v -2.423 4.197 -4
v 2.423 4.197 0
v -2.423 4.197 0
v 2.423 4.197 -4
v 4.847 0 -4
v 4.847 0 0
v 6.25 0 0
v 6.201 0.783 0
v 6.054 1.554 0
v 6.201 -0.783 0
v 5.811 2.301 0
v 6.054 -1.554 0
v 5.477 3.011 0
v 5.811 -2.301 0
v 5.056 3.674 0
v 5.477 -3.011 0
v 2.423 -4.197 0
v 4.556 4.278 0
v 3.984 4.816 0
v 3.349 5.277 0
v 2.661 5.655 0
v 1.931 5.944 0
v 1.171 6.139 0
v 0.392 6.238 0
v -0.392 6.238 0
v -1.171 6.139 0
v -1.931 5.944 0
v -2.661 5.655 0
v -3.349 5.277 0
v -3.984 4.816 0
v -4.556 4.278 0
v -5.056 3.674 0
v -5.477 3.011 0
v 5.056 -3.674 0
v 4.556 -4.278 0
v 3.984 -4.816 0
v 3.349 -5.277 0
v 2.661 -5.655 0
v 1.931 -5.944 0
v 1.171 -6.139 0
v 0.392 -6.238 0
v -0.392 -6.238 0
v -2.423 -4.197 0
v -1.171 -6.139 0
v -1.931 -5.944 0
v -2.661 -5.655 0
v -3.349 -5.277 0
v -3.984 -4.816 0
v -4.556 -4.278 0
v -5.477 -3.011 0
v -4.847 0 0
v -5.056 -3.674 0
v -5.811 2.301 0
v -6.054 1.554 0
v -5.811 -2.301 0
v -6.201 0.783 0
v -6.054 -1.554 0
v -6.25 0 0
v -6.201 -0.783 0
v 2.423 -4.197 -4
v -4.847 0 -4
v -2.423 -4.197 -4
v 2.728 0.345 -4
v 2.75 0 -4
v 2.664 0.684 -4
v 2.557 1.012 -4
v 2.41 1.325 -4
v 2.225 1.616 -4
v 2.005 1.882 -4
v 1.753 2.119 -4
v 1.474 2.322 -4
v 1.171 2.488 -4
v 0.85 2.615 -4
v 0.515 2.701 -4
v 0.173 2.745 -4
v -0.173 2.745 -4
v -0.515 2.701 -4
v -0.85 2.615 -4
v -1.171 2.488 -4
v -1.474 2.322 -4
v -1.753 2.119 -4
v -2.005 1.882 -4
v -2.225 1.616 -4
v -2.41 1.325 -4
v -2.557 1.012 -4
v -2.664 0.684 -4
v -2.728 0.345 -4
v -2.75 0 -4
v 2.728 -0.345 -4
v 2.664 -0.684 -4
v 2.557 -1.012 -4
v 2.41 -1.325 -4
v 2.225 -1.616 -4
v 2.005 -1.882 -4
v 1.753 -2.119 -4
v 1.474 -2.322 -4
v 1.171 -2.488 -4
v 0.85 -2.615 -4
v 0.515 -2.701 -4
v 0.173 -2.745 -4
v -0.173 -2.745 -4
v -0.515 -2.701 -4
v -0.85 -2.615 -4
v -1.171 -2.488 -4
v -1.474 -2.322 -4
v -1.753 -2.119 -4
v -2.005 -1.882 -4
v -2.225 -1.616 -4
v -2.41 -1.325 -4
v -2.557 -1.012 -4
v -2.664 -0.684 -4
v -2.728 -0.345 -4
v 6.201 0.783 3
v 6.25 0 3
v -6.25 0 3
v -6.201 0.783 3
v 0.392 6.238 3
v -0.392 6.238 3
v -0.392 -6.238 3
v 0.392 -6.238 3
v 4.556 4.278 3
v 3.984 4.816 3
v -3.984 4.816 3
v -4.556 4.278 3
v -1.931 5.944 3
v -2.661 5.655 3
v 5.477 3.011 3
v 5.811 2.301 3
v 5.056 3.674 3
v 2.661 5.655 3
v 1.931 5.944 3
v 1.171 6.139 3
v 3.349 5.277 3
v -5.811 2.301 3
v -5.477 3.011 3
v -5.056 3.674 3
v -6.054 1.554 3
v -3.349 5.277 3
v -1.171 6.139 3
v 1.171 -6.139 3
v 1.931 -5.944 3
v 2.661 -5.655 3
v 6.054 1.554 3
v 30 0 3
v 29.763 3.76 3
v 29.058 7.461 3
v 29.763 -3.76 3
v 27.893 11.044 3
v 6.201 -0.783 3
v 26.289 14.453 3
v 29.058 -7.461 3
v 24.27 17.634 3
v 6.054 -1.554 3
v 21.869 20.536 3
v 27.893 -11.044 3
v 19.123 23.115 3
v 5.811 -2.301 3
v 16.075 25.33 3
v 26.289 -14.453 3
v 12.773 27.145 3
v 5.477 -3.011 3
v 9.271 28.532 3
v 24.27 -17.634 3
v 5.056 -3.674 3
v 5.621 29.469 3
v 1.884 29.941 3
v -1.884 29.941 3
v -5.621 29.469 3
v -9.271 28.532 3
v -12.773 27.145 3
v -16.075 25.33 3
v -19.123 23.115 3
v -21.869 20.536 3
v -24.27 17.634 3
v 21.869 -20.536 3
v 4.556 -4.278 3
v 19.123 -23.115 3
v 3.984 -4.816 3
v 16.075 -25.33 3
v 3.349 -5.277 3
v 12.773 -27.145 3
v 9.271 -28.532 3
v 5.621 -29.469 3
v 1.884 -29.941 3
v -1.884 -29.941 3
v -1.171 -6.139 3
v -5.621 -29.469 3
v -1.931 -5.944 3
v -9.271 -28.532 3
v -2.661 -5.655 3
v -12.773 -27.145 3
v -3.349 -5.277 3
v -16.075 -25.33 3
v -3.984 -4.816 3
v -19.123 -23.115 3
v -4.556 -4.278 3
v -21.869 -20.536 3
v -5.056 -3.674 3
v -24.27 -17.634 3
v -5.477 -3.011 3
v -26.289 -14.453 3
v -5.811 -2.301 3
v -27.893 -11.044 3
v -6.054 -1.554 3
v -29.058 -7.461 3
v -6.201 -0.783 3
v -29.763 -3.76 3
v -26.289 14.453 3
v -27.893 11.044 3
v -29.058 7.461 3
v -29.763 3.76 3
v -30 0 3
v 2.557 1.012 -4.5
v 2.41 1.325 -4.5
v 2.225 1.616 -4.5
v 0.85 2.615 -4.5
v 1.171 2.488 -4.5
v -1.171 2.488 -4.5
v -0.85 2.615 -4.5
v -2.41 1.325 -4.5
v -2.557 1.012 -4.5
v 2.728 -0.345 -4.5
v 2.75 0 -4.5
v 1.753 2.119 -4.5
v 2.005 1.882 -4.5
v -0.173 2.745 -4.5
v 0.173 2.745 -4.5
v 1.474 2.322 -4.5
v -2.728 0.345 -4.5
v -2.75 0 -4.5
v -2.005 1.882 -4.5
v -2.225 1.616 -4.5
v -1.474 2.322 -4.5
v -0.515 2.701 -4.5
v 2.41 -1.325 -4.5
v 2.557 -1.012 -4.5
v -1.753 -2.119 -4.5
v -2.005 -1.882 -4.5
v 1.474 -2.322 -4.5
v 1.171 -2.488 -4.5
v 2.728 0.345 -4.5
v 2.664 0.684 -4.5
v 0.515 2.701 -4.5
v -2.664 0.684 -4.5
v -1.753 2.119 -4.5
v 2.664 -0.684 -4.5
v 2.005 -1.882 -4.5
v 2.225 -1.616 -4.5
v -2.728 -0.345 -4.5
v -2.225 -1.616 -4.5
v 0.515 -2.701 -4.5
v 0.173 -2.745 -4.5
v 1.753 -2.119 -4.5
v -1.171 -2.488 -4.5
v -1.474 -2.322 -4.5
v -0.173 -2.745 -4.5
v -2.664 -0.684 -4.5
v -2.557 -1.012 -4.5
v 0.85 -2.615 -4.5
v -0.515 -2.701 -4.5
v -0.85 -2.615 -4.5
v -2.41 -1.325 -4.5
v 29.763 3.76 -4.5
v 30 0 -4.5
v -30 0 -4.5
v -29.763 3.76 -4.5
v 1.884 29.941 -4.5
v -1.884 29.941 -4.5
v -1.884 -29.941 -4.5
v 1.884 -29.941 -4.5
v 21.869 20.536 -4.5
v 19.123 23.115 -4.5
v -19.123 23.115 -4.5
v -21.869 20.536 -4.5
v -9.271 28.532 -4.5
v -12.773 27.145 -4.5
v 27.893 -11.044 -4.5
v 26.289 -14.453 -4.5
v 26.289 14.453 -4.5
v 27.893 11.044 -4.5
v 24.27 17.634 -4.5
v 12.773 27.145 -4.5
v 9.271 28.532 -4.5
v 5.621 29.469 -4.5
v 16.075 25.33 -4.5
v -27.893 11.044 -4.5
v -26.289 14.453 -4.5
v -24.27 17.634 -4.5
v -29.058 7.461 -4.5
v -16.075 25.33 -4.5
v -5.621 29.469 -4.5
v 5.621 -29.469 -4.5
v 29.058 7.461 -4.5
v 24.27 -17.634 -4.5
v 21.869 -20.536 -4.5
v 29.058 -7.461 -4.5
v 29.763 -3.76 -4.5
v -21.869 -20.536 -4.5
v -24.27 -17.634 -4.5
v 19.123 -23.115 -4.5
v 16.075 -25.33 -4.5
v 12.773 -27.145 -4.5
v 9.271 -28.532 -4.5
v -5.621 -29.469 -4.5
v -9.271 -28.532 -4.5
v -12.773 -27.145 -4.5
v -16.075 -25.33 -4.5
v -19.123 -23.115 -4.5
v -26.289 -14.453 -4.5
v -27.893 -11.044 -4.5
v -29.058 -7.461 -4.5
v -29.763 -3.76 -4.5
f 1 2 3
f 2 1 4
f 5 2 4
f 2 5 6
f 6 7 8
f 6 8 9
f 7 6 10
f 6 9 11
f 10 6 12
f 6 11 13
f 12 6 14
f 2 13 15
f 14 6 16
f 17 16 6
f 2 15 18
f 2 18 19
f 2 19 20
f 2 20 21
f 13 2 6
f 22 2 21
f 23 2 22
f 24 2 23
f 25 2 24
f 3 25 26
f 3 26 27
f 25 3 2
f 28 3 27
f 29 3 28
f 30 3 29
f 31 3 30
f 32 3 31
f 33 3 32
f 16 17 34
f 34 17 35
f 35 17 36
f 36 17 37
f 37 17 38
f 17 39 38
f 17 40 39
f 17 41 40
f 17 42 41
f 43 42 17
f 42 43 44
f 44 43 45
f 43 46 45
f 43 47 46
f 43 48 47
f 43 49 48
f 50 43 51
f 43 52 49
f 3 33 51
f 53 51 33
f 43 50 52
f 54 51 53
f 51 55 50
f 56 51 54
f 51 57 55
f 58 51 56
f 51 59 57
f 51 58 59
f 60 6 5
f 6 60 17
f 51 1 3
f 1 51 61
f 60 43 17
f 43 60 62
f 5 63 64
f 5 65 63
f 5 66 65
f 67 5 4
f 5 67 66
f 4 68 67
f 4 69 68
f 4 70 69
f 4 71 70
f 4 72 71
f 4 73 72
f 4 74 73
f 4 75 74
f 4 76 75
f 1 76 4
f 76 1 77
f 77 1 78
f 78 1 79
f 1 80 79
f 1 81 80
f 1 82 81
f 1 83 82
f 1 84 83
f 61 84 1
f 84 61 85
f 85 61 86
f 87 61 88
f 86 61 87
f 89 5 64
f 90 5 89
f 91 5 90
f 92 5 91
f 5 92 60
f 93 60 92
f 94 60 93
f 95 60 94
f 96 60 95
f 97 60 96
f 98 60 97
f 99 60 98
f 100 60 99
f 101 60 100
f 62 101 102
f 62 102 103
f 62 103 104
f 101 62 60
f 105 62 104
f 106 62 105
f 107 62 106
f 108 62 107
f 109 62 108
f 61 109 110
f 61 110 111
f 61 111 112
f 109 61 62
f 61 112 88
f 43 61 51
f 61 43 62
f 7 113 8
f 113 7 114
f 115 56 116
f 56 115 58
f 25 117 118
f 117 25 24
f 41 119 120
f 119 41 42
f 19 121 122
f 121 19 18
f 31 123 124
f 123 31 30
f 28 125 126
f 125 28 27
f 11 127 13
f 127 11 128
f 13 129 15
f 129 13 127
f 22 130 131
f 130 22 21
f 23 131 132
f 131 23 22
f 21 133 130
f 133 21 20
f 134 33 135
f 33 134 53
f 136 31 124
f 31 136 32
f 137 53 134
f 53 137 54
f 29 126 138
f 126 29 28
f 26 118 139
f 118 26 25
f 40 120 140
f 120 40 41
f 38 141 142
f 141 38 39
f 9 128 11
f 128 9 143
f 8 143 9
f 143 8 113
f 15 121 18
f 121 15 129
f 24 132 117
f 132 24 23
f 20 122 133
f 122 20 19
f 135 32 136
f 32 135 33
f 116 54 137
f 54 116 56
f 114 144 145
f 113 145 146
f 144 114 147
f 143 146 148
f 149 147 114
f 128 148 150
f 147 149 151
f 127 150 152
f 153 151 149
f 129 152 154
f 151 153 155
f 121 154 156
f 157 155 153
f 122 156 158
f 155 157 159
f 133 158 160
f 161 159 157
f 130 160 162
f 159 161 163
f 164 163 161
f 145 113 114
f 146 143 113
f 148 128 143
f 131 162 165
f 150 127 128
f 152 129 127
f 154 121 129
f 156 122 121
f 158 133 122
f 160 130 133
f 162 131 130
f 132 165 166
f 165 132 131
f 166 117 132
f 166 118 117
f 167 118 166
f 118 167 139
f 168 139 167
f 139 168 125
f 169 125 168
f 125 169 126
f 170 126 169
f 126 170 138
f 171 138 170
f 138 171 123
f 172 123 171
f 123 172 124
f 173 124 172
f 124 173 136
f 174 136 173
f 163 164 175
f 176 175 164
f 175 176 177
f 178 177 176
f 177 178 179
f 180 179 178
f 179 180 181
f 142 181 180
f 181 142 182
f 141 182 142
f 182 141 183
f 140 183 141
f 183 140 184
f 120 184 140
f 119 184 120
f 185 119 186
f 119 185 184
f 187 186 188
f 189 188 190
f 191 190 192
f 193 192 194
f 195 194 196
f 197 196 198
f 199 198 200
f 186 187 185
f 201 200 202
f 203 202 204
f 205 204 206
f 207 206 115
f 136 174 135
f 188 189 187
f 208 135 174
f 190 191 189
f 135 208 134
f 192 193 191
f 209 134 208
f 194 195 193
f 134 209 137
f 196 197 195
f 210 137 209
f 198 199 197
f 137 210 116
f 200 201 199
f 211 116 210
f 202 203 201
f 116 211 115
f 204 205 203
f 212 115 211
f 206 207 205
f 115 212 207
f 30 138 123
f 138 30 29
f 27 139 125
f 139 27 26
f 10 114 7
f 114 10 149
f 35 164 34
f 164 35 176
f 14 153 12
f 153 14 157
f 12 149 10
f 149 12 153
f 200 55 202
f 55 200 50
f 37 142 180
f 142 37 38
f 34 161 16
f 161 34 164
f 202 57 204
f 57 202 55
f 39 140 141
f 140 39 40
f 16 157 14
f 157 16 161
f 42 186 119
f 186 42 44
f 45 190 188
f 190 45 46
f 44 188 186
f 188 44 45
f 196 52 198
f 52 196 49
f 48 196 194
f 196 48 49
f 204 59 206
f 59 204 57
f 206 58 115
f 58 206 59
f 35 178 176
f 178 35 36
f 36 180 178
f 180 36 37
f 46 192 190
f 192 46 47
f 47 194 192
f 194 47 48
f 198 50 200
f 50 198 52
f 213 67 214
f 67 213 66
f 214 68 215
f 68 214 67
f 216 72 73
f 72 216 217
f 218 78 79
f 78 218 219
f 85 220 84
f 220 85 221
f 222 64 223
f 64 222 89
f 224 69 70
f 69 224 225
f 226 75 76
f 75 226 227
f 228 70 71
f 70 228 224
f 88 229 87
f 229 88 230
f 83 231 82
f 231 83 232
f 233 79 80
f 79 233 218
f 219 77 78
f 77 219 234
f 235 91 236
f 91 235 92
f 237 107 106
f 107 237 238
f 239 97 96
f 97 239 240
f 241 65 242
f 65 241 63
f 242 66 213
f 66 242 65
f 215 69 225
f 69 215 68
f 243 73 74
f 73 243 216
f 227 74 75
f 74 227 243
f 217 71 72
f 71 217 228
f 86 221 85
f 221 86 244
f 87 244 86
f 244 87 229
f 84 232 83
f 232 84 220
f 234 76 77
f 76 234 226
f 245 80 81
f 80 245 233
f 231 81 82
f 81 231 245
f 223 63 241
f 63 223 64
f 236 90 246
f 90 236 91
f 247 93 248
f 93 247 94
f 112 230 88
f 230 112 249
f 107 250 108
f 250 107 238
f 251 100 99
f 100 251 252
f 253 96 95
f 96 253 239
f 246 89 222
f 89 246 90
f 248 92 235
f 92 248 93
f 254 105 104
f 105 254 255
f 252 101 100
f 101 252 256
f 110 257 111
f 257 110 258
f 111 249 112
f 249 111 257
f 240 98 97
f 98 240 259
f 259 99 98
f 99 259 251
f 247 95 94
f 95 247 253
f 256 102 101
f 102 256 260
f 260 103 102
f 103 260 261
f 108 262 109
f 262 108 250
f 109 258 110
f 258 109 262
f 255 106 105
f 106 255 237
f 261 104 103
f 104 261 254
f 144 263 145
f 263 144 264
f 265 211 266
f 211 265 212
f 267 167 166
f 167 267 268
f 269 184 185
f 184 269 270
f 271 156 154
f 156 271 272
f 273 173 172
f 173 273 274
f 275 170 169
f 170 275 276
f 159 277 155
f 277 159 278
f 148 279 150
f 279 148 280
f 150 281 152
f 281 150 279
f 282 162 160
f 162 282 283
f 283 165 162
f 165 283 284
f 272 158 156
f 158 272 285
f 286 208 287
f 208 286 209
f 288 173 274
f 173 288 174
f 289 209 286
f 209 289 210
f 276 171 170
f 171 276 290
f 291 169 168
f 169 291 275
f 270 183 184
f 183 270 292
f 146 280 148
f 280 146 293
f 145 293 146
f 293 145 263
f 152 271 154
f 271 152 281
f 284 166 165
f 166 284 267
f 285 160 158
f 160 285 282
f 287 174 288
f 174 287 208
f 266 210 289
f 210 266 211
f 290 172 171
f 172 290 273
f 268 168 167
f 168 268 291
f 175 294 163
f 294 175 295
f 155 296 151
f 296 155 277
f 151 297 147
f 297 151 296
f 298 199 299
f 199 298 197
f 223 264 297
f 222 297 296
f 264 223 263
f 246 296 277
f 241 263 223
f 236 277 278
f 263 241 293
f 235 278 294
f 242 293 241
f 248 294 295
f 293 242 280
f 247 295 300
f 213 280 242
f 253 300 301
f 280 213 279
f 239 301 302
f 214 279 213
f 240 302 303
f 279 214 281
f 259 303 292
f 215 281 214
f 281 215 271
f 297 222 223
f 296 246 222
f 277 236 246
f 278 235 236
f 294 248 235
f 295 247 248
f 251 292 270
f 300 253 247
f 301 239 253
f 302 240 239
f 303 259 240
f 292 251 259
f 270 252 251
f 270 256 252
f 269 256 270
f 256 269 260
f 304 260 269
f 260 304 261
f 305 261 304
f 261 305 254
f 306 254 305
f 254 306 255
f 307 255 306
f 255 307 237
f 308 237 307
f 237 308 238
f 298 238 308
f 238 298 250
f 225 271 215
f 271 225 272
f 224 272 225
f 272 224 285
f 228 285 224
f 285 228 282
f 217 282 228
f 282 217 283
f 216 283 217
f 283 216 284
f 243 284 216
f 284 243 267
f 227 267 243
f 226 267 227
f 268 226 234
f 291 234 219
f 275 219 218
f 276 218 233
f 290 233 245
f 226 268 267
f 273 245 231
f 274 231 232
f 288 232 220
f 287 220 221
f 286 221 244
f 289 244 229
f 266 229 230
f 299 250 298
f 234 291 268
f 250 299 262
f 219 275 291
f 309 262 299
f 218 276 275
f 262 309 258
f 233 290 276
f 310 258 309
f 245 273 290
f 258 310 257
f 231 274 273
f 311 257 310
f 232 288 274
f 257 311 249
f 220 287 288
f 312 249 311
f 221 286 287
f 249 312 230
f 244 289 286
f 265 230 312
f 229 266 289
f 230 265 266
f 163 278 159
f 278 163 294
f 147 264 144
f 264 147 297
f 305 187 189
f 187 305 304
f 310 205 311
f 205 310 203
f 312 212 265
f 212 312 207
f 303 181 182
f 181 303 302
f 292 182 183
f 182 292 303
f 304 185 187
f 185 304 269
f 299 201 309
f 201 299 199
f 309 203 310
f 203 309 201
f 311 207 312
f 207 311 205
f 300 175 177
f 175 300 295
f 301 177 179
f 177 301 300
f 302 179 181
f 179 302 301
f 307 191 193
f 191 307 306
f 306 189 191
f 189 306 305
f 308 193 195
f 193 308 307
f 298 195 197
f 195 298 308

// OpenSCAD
$fn = 50;


difference() {
	union() {
		translate(v = [0, 0, -4.5000000000]) {
			cylinder(h = 7.5000000000, r = 30.0000000000);
		}
	}
	union() {
		translate(v = [0, 0, 0]) {
			rotate(a = [0, 0, 0]) {
				difference() {
					union() {
						translate(v = [0, 0, -4]) {
							linear_extrude(height = 4) {
								polygon(points = [[4.8468000000, 0.0000000000], [2.4234000000, 4.1974519271], [-2.4234000000, 4.1974519271], [-4.8468000000, 0.0000000000], [-2.4234000000, -4.1974519271], [2.4234000000, -4.1974519271]]);
							}
						}
					}
					union();
				}
			}
		}
		#cylinder(h = 3, r = 6.2500000000);
		#translate(v = [0, 0, -100.0000000000]) {
			cylinder(h = 200, r = 2.7500000000);
		}
	}
}
